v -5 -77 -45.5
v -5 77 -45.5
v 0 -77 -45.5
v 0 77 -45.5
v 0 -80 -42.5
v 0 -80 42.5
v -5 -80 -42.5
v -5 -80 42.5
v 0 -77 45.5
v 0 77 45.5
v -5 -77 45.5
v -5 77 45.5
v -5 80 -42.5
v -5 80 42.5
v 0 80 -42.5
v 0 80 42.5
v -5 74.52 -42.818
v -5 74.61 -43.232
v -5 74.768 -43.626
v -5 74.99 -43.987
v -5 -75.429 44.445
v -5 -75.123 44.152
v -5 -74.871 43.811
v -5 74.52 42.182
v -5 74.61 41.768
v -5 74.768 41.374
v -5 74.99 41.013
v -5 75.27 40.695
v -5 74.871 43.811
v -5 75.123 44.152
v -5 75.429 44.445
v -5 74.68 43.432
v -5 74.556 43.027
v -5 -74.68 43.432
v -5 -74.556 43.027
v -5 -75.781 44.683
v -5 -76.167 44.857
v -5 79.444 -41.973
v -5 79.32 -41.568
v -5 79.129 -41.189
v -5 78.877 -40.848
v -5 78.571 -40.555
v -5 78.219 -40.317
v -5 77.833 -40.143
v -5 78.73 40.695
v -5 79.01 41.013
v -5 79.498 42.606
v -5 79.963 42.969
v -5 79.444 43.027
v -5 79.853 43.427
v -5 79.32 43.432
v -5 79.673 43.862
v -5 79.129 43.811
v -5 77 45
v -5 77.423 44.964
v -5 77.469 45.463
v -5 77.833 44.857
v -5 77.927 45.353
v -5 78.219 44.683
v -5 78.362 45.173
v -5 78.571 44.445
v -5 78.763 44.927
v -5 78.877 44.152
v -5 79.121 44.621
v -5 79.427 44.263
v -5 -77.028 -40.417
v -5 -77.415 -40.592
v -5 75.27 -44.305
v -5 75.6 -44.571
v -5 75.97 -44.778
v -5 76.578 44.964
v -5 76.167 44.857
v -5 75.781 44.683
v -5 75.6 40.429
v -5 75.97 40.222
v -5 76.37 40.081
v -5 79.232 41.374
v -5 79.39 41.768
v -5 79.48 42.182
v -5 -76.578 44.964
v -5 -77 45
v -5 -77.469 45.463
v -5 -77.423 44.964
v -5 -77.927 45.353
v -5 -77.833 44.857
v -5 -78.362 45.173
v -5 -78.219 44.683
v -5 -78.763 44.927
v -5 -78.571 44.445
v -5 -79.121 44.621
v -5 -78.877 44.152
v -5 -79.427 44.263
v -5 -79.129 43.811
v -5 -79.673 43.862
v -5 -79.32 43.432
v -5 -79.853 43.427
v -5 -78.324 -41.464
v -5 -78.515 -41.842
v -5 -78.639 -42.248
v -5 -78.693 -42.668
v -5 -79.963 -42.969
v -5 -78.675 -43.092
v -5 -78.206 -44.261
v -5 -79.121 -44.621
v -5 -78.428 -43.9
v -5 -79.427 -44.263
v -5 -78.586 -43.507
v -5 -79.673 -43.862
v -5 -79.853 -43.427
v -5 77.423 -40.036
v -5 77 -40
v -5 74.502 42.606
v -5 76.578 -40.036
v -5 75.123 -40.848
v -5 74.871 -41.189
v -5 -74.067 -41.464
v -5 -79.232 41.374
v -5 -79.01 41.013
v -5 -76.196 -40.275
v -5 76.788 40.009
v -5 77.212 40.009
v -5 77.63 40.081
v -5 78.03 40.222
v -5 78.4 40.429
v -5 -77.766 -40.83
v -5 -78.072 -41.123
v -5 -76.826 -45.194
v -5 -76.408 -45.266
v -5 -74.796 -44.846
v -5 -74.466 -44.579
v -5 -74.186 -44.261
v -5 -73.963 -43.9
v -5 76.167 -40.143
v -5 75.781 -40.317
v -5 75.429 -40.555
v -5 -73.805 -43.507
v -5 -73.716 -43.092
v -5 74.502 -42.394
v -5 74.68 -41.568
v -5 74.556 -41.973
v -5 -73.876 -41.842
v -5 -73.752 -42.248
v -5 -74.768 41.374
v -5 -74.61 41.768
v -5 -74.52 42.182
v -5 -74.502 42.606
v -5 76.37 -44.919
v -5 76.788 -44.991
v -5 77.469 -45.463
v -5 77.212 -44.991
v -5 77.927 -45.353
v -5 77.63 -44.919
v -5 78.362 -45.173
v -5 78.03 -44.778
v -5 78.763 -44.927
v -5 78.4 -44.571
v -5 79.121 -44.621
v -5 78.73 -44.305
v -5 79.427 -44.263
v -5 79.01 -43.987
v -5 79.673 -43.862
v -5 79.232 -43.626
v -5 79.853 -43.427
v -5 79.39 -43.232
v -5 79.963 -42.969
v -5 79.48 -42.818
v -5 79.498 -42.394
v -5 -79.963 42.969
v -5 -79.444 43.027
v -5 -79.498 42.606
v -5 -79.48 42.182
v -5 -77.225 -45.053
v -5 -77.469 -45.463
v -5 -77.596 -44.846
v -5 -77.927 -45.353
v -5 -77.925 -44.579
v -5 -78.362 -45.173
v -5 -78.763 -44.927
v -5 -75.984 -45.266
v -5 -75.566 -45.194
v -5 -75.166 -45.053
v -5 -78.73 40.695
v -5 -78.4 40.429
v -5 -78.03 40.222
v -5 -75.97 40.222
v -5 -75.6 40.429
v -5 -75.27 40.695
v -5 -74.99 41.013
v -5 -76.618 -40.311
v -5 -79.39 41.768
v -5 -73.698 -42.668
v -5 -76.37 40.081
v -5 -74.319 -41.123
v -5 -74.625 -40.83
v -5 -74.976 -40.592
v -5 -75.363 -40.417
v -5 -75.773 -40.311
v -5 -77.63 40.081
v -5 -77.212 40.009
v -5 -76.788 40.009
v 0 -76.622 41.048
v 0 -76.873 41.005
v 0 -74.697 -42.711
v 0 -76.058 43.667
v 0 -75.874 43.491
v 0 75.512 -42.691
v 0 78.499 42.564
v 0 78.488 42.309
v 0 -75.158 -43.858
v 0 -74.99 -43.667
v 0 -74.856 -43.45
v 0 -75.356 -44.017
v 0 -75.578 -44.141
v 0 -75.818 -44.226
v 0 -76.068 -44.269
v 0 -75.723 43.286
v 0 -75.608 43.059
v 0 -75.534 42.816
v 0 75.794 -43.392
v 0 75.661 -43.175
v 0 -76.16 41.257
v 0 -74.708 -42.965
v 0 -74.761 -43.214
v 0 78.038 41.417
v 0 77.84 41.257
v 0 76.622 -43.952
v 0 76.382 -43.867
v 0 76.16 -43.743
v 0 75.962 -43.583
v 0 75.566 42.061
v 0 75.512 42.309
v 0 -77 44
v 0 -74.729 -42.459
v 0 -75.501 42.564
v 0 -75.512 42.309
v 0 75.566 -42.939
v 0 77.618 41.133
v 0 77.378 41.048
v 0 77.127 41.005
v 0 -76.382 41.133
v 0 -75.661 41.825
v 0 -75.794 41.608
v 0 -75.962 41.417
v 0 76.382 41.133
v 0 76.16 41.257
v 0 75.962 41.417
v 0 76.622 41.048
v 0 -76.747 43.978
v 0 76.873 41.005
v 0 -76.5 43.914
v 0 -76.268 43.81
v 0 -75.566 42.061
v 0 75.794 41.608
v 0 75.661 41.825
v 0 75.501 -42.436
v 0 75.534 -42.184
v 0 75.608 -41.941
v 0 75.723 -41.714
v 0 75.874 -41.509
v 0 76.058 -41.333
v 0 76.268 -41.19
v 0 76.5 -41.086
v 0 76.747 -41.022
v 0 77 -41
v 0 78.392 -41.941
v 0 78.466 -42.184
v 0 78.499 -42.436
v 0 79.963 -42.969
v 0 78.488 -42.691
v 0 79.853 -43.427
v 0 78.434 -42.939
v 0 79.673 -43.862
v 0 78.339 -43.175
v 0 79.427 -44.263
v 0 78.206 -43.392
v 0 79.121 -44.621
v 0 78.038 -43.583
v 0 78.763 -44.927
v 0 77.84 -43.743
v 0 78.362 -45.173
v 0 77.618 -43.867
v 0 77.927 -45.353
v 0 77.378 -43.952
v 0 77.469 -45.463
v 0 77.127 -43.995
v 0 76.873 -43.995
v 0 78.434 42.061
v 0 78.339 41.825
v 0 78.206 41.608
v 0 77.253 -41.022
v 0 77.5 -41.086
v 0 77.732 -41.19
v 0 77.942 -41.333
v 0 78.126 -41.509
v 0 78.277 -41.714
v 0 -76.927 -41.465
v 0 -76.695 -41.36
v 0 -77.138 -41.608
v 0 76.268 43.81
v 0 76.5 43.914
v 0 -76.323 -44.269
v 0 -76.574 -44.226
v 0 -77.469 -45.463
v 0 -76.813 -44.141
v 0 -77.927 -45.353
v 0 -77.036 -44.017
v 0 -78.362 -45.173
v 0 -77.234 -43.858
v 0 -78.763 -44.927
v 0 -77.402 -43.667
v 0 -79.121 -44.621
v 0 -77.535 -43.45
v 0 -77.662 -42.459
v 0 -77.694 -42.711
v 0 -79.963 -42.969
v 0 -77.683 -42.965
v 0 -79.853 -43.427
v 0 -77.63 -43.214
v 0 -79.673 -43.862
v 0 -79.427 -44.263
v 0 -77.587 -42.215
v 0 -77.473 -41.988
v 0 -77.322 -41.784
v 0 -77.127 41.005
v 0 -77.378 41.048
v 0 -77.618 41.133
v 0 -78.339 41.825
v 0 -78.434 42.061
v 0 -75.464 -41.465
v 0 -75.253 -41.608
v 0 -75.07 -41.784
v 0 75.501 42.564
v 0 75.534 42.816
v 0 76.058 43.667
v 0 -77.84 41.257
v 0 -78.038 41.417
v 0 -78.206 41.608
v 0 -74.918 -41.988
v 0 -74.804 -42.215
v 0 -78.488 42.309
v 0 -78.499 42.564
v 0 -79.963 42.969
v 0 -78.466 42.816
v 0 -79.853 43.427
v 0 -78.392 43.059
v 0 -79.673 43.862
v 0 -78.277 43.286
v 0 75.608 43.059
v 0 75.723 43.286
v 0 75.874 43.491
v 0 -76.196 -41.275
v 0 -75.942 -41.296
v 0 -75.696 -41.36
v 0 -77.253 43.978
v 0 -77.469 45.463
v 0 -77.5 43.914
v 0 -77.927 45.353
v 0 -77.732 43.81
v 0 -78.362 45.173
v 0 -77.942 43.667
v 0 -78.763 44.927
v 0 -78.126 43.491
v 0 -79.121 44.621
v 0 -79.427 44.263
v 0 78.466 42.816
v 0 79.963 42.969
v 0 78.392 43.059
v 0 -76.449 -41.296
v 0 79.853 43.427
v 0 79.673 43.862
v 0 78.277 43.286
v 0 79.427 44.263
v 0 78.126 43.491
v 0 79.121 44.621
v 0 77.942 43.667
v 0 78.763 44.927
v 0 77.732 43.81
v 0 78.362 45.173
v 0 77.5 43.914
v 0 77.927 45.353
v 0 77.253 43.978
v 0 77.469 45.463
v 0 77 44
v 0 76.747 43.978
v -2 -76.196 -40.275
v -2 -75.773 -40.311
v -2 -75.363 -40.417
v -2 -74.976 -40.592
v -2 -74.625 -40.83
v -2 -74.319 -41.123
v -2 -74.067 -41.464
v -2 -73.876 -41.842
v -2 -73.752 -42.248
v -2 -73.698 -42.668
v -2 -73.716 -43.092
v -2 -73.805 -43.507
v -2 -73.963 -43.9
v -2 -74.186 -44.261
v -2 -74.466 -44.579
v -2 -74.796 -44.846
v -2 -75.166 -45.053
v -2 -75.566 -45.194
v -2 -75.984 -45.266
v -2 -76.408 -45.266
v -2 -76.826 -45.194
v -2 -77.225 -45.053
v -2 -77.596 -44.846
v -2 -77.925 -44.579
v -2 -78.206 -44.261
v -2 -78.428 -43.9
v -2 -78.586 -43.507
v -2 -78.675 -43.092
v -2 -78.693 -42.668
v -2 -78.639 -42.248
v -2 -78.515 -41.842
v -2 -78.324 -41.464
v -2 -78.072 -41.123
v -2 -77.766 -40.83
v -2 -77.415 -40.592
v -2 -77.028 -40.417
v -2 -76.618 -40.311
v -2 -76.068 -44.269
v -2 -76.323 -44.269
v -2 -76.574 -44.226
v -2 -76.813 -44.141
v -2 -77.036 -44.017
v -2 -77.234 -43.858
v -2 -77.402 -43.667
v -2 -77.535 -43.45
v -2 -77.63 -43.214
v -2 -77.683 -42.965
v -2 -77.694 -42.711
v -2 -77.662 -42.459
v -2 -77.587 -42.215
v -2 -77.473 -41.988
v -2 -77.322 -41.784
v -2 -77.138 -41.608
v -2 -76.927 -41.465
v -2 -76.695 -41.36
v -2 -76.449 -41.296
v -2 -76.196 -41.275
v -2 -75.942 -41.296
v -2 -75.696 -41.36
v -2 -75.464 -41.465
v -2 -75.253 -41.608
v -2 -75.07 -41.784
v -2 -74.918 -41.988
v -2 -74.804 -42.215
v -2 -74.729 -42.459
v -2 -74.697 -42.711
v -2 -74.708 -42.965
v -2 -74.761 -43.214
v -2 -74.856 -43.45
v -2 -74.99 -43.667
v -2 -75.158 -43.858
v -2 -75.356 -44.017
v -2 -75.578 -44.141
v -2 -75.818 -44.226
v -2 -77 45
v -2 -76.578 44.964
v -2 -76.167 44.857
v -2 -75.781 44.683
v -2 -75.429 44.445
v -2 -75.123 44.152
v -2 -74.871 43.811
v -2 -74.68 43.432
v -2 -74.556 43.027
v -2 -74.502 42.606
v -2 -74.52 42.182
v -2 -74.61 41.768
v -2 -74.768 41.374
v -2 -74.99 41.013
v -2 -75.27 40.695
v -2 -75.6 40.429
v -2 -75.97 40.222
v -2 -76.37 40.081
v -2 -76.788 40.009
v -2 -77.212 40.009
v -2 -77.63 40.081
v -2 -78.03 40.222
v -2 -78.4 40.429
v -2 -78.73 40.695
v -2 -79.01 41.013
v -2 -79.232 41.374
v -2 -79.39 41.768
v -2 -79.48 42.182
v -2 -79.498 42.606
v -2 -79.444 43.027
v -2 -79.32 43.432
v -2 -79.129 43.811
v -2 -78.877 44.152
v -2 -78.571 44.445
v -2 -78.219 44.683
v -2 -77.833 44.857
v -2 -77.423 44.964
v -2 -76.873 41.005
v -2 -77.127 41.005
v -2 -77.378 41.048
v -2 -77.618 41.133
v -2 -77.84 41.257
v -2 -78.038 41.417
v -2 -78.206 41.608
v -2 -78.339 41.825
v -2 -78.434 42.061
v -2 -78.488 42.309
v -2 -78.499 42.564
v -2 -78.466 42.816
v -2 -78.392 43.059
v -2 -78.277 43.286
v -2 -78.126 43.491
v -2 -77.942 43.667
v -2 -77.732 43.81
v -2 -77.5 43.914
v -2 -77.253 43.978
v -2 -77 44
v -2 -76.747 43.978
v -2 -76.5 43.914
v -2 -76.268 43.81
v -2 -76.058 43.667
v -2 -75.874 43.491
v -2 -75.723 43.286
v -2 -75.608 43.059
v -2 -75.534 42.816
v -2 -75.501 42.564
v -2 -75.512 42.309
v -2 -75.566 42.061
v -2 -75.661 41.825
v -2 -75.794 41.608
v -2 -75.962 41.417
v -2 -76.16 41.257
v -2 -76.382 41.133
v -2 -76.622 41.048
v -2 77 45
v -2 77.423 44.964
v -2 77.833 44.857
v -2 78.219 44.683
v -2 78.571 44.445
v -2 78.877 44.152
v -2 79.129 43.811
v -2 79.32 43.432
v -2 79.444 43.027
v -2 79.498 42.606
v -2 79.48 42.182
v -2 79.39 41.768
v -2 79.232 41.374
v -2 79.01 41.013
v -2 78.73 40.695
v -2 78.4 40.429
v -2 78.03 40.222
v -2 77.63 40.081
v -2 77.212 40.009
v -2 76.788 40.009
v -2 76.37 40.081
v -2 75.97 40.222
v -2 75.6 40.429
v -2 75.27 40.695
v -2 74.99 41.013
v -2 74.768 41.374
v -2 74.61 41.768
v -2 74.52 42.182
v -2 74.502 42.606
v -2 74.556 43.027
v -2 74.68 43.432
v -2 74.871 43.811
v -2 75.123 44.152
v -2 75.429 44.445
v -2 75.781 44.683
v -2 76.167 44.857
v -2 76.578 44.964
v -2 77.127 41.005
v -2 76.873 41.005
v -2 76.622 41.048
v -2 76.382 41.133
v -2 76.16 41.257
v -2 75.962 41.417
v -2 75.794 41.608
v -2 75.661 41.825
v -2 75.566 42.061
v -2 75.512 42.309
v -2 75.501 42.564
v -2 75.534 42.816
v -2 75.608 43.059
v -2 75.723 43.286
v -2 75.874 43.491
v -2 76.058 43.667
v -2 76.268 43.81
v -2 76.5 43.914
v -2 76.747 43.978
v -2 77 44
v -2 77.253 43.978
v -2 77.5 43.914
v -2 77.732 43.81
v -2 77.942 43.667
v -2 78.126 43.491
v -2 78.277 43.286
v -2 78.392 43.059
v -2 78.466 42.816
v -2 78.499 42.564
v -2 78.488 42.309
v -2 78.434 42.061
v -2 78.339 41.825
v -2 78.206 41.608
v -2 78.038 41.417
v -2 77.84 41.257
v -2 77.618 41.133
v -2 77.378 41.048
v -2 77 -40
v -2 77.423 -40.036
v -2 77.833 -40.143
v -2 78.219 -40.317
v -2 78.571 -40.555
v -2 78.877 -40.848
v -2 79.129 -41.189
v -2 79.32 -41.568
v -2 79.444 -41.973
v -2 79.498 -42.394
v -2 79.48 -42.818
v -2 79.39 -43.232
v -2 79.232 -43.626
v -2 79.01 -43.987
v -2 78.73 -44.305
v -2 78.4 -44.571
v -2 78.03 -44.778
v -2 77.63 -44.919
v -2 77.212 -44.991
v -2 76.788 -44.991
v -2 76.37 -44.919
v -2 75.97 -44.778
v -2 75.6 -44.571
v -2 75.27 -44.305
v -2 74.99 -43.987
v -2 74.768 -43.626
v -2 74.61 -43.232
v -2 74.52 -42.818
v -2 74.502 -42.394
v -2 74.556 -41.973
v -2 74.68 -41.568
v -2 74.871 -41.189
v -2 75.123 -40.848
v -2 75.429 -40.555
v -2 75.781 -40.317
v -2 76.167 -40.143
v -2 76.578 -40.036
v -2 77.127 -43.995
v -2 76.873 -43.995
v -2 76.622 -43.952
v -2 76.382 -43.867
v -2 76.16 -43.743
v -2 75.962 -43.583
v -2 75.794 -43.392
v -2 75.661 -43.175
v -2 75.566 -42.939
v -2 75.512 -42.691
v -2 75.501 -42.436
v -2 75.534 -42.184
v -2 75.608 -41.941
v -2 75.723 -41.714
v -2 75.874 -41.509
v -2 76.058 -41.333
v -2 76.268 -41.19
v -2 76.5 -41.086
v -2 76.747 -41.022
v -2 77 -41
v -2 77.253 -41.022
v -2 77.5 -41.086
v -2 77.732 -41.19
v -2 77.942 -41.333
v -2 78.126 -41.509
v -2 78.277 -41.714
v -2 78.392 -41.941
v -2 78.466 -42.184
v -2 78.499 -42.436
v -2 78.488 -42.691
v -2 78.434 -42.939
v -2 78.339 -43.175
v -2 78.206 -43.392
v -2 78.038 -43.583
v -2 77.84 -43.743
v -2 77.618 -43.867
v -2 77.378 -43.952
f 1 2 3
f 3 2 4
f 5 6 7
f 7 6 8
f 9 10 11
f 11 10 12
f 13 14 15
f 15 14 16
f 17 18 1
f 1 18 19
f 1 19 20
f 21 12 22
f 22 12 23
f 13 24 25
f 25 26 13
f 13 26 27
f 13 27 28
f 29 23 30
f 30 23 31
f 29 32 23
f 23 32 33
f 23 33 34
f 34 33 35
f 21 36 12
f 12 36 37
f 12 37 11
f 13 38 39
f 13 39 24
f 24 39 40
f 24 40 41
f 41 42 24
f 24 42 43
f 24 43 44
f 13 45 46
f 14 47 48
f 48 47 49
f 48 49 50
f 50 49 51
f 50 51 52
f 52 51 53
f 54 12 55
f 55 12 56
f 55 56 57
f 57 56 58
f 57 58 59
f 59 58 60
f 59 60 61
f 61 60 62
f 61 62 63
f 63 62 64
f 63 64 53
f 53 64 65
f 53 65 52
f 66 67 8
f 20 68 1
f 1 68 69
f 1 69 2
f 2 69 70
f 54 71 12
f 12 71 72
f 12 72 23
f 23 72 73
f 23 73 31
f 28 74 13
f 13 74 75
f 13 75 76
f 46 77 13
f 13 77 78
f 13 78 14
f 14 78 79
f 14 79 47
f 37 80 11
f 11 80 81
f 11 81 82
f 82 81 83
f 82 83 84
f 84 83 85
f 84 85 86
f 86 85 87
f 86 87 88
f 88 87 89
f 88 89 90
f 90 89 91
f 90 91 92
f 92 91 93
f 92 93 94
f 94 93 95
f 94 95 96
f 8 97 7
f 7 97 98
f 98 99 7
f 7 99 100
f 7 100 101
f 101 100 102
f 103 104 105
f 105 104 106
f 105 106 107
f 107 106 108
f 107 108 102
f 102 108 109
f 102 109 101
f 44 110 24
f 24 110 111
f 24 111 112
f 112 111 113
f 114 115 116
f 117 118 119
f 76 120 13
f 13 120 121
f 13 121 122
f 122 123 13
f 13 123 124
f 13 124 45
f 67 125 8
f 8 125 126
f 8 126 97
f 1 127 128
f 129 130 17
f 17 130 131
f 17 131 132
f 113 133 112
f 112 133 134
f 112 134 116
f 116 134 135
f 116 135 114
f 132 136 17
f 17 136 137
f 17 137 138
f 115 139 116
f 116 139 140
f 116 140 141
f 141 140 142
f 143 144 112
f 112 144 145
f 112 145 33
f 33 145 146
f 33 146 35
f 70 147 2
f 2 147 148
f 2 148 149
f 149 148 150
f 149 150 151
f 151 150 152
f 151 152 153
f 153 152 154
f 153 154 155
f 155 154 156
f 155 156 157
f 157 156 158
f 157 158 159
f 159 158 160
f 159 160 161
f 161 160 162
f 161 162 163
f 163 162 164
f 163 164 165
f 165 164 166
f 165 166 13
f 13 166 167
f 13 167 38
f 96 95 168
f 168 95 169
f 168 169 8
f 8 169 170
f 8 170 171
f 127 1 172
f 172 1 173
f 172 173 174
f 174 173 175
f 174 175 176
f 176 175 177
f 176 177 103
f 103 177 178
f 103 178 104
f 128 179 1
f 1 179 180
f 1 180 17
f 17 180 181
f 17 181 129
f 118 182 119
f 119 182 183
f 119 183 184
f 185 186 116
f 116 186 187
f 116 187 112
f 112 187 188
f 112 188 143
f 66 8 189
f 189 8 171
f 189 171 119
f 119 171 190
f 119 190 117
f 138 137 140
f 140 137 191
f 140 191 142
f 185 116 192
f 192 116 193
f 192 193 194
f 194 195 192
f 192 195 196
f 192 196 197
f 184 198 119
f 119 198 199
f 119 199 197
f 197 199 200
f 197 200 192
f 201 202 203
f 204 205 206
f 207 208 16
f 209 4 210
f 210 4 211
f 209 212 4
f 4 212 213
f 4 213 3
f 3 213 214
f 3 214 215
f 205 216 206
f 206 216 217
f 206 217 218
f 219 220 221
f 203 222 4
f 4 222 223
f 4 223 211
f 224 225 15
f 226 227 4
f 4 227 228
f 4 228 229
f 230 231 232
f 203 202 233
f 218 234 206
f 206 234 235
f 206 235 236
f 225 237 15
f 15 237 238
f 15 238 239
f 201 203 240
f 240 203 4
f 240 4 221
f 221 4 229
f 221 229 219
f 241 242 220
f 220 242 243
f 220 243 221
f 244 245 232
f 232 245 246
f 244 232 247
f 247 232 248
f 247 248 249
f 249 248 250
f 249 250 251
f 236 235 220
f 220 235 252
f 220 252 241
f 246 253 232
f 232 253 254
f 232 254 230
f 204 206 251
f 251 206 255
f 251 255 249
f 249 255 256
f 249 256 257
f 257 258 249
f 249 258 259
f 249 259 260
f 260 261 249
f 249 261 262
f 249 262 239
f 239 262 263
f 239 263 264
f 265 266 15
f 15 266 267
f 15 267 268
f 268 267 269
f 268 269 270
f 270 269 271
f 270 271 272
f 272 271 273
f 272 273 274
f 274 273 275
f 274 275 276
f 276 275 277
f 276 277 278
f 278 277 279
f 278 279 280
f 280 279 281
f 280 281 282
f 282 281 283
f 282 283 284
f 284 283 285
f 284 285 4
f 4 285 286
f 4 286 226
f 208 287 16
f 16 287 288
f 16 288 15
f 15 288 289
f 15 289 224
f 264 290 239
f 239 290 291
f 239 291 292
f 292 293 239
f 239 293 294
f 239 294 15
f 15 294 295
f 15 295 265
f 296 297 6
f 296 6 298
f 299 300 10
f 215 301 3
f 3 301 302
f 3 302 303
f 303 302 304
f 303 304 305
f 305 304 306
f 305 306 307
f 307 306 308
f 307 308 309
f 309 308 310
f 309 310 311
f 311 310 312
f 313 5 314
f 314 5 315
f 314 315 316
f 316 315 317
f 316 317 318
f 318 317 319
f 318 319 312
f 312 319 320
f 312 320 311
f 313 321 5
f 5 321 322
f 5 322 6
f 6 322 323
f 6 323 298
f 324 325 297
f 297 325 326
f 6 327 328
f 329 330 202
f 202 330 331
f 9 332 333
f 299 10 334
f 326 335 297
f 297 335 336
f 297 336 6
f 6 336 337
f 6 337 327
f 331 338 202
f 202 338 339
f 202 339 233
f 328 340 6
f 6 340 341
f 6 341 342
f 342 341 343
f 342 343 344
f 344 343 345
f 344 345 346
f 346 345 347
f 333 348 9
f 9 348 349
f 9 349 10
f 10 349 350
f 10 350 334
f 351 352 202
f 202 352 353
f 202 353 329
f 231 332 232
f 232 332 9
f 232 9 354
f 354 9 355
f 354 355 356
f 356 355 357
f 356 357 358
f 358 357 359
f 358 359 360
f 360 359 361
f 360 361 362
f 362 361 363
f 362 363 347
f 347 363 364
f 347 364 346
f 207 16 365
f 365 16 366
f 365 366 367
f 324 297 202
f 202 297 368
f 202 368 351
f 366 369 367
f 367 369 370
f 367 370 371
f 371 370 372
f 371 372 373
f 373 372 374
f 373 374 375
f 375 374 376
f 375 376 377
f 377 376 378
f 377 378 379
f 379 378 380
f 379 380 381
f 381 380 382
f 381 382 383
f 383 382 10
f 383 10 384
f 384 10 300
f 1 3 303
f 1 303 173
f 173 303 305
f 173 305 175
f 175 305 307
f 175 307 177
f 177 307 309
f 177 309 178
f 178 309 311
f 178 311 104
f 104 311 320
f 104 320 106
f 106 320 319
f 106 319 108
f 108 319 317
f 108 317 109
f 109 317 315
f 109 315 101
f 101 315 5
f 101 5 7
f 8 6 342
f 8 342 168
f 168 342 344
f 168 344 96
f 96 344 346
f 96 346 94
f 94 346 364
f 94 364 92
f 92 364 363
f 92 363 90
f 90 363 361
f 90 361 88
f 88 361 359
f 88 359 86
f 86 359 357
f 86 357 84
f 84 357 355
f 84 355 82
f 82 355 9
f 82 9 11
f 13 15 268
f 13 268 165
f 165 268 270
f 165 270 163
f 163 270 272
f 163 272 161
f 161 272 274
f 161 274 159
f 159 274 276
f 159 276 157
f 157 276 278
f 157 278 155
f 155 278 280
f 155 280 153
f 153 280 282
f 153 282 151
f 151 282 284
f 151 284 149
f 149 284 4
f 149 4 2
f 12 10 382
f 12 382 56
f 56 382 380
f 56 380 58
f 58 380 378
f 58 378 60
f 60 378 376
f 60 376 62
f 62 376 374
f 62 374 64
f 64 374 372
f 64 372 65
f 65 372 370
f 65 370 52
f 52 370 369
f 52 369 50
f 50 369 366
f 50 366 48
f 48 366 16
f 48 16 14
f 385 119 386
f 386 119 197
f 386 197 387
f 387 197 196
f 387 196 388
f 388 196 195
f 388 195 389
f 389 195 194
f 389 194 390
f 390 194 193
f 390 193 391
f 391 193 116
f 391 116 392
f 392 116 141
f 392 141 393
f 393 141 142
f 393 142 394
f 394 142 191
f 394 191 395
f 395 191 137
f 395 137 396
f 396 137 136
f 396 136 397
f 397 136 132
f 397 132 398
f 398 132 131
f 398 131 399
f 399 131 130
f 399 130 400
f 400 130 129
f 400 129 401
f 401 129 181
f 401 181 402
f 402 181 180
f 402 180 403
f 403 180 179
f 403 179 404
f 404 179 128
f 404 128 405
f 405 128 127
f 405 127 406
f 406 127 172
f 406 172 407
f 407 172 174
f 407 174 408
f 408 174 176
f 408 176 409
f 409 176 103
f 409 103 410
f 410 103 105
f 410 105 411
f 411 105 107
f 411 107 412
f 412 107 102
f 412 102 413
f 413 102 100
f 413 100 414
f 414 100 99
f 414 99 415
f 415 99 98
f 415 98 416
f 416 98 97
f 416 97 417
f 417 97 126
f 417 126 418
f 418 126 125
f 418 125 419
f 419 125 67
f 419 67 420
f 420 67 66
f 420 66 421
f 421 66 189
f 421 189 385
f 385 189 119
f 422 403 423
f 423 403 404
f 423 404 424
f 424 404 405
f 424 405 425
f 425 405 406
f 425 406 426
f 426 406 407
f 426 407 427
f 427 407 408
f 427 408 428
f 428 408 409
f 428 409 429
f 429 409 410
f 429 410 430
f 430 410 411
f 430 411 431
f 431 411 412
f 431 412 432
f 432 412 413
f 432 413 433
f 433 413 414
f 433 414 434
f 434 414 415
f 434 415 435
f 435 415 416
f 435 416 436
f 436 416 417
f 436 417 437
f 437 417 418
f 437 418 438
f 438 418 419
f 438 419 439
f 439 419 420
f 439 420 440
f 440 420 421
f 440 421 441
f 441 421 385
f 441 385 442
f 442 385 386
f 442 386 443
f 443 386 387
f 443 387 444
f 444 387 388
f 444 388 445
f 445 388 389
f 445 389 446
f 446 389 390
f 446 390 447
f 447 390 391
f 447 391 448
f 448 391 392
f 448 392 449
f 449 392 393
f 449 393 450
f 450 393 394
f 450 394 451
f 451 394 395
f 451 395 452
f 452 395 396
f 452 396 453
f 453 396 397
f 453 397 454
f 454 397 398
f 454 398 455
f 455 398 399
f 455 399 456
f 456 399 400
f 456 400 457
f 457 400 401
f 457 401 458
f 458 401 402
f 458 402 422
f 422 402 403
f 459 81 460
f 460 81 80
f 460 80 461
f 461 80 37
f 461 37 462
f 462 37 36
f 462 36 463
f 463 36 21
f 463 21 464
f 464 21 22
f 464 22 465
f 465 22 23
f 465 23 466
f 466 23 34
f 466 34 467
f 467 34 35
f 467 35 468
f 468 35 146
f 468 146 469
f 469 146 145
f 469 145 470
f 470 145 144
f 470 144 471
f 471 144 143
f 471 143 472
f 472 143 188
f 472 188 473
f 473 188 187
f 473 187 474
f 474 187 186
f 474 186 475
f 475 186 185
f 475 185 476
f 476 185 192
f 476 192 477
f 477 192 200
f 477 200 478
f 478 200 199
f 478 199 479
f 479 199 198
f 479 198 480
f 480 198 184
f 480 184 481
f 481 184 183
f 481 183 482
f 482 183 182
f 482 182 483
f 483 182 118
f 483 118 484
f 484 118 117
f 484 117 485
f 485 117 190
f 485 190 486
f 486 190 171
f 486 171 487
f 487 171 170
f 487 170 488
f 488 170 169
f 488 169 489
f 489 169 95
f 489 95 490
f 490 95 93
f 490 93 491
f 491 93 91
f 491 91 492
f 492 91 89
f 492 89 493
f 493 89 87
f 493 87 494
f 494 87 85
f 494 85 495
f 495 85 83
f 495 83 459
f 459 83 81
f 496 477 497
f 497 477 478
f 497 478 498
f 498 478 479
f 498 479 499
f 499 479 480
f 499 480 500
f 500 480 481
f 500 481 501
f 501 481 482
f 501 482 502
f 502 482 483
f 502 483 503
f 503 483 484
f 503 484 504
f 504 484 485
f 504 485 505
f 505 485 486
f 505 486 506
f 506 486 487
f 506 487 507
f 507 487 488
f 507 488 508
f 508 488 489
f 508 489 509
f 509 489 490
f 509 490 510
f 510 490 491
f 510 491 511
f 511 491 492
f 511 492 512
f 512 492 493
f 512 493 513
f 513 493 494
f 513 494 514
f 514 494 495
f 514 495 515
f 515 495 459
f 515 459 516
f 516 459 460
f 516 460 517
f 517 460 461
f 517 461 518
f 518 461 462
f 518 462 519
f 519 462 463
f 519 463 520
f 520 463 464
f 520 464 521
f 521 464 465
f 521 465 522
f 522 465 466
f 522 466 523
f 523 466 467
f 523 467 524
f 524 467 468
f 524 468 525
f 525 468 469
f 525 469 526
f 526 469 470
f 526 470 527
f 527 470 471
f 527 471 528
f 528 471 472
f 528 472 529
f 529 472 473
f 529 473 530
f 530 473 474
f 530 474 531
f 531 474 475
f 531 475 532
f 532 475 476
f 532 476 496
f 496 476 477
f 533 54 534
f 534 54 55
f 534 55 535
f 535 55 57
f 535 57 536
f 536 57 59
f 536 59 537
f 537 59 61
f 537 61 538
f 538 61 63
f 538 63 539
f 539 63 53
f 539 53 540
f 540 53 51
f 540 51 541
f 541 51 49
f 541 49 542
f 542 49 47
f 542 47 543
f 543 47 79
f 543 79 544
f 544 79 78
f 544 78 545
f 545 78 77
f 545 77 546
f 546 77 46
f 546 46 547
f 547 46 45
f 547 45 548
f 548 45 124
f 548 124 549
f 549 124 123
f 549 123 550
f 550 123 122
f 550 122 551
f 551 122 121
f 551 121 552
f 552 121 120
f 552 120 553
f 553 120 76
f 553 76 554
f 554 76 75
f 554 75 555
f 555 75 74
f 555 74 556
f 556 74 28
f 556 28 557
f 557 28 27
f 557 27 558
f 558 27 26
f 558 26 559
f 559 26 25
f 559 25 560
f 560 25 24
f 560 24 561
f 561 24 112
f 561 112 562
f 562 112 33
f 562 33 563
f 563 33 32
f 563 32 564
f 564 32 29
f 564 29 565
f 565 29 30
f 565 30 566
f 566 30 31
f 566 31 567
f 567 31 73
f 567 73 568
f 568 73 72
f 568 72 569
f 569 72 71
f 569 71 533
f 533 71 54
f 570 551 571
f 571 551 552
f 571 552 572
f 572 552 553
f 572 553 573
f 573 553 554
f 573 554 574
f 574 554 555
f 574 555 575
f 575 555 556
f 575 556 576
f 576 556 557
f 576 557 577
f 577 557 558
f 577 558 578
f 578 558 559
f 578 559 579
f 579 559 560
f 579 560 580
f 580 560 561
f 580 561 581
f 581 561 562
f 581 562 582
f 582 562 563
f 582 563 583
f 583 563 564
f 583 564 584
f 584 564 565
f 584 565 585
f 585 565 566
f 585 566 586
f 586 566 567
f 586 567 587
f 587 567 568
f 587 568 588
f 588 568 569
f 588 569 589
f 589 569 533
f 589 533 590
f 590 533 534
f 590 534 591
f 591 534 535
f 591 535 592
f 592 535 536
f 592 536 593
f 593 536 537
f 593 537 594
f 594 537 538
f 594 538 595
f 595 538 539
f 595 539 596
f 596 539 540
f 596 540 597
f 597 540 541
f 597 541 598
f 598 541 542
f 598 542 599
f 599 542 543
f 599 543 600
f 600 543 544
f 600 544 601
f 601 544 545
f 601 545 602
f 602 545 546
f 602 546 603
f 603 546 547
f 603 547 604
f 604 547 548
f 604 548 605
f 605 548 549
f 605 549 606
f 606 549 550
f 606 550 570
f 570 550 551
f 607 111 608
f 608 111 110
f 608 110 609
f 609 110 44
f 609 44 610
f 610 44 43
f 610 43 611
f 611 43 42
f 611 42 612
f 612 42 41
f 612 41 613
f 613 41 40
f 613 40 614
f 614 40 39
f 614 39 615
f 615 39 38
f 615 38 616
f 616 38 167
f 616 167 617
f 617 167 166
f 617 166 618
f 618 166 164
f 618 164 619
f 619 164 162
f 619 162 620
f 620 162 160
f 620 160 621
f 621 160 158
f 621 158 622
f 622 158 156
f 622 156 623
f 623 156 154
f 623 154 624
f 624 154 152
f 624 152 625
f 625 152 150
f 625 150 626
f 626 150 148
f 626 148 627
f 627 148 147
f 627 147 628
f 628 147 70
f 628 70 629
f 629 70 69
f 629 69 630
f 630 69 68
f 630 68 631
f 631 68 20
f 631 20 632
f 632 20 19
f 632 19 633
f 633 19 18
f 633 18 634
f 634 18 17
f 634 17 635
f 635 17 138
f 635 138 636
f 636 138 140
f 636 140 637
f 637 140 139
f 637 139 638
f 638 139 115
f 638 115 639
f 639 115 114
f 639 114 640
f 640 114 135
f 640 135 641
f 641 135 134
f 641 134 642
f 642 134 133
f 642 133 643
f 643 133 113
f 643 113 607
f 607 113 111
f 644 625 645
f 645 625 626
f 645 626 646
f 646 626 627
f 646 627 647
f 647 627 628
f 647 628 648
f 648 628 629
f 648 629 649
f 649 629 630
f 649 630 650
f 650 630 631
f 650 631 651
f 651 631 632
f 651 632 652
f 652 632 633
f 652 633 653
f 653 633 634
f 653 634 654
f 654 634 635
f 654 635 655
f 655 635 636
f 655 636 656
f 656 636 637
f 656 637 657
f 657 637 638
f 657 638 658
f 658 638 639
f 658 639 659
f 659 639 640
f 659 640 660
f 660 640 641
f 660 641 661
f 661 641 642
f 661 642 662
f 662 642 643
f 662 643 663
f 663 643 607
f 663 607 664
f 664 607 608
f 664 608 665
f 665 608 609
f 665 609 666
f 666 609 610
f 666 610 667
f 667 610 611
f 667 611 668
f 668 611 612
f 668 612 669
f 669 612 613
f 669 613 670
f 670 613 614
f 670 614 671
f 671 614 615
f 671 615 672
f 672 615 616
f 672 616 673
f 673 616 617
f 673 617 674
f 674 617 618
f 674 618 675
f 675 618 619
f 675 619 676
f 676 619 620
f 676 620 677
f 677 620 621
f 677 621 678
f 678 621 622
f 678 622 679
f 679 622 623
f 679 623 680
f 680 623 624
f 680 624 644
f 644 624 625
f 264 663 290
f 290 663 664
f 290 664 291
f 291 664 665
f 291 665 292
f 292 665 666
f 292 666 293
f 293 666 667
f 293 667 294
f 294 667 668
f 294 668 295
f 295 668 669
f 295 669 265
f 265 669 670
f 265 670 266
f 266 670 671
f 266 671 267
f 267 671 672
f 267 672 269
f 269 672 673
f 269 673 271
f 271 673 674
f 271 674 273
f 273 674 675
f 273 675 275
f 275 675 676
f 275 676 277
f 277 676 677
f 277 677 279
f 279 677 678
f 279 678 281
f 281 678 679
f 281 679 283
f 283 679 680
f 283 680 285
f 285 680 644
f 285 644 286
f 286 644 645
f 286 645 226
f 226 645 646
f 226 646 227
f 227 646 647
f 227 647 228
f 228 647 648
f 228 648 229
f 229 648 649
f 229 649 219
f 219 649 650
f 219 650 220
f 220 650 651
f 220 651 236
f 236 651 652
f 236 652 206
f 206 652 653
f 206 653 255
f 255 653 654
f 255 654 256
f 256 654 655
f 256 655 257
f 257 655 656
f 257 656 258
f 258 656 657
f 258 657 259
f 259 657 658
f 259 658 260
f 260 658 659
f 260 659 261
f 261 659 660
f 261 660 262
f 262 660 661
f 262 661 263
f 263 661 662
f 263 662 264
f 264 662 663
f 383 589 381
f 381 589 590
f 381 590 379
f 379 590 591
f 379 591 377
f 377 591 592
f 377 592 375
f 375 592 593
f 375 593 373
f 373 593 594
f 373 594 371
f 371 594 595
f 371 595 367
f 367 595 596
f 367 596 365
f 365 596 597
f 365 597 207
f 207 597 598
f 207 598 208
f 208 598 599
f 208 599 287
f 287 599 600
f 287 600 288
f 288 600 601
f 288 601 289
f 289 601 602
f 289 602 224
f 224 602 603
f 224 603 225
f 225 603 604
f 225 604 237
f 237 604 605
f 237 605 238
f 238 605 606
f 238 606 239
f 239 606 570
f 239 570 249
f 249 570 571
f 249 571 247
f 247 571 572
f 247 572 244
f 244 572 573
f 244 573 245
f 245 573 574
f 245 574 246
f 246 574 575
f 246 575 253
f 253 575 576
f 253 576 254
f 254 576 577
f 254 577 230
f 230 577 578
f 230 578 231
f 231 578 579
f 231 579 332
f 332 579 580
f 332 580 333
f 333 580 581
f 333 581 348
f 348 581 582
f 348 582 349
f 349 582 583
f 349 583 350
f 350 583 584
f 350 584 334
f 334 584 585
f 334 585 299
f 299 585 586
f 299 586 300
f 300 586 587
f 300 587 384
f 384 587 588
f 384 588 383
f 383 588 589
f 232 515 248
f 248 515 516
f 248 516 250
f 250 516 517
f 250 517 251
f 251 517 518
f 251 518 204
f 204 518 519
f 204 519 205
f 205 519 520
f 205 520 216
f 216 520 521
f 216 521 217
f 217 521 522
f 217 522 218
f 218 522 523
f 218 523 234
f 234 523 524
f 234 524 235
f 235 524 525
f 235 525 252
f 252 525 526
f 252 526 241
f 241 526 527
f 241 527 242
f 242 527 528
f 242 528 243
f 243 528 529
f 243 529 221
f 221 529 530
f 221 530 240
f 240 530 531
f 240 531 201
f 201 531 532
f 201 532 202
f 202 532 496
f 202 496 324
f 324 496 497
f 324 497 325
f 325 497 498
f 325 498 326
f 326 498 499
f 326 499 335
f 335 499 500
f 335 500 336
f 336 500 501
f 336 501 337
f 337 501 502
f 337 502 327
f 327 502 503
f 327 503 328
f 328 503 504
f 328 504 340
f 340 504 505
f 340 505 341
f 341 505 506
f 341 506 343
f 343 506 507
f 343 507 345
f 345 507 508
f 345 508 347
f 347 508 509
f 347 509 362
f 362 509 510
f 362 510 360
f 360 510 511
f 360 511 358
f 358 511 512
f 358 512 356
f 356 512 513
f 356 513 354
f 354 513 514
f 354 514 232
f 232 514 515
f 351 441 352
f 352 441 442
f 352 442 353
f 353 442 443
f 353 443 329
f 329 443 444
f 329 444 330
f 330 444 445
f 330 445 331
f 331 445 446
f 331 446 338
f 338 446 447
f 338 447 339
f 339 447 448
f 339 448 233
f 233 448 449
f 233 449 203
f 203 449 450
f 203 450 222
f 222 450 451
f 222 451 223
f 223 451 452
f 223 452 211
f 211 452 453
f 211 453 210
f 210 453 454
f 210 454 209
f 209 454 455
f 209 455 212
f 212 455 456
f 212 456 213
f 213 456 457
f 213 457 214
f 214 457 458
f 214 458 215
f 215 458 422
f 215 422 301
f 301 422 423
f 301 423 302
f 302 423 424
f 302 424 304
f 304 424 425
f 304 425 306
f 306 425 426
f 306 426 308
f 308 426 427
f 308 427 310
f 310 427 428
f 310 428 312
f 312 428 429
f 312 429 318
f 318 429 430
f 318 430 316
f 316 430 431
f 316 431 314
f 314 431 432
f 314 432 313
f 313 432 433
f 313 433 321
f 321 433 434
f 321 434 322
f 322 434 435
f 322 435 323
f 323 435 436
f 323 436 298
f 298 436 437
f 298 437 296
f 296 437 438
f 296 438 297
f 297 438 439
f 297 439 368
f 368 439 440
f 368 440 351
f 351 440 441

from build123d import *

# Parameters (mm, degrees)
SKETCH1_W           = 91
SKETCH1_H           = 160
BOSS_EXTRUDE1_DEPTH = 5
FILLET1_R           = 3
SKETCH2_R           = 2.5
CUT_EXTRUDE1_DEPTH  = 3
SKETCH3_R           = 1.5
CUT_EXTRUDE2_DEPTH  = 5


with BuildPart() as part:
    # Sketch1 → Boss-Extrude1 (new body)
    with BuildSketch(Plane(origin=(0, 0, 0), x_dir=(0, 0, -1), z_dir=(1, 0, 0))):
        Rectangle(SKETCH1_W, SKETCH1_H)
    extrude(amount=-BOSS_EXTRUDE1_DEPTH)

    # Fillet1
    fillet1_edges = [part.edges().sort_by_distance(p)[0] for p in [
        (-2.5, -80, -45.5),
        (-2.5, -80, 45.5),
        (-2.5, 80, 45.5),
        (-2.5, 80, -45.5),
    ]]
    fillet(fillet1_edges, radius=FILLET1_R)

    # Sketch2 → Cut-Extrude1 (cut)
    with BuildSketch(Plane.ZY.offset(5)):
        with Locations((-42.774595658, -76.1955969)):
            Circle(SKETCH2_R)
        with Locations((42.5, -77)):
            Circle(SKETCH2_R)
        with Locations((42.5, 77)):
            Circle(SKETCH2_R)
        with Locations((-42.5, 77)):
            Circle(SKETCH2_R)
    extrude(amount=-CUT_EXTRUDE1_DEPTH, mode=Mode.SUBTRACT)

    # Sketch3 → Cut-Extrude2 (cut)
    with BuildSketch(Plane.ZY.offset(2)):
        with Locations((-42.5, 77)):
            Circle(SKETCH3_R)
        with Locations((42.5, 77)):
            Circle(SKETCH3_R)
        with Locations((42.5, -77)):
            Circle(SKETCH3_R)
        with Locations((-42.774595658, -76.1955969)):
            Circle(SKETCH3_R)
    extrude(amount=-CUT_EXTRUDE2_DEPTH, mode=Mode.SUBTRACT)


solid = part.part
